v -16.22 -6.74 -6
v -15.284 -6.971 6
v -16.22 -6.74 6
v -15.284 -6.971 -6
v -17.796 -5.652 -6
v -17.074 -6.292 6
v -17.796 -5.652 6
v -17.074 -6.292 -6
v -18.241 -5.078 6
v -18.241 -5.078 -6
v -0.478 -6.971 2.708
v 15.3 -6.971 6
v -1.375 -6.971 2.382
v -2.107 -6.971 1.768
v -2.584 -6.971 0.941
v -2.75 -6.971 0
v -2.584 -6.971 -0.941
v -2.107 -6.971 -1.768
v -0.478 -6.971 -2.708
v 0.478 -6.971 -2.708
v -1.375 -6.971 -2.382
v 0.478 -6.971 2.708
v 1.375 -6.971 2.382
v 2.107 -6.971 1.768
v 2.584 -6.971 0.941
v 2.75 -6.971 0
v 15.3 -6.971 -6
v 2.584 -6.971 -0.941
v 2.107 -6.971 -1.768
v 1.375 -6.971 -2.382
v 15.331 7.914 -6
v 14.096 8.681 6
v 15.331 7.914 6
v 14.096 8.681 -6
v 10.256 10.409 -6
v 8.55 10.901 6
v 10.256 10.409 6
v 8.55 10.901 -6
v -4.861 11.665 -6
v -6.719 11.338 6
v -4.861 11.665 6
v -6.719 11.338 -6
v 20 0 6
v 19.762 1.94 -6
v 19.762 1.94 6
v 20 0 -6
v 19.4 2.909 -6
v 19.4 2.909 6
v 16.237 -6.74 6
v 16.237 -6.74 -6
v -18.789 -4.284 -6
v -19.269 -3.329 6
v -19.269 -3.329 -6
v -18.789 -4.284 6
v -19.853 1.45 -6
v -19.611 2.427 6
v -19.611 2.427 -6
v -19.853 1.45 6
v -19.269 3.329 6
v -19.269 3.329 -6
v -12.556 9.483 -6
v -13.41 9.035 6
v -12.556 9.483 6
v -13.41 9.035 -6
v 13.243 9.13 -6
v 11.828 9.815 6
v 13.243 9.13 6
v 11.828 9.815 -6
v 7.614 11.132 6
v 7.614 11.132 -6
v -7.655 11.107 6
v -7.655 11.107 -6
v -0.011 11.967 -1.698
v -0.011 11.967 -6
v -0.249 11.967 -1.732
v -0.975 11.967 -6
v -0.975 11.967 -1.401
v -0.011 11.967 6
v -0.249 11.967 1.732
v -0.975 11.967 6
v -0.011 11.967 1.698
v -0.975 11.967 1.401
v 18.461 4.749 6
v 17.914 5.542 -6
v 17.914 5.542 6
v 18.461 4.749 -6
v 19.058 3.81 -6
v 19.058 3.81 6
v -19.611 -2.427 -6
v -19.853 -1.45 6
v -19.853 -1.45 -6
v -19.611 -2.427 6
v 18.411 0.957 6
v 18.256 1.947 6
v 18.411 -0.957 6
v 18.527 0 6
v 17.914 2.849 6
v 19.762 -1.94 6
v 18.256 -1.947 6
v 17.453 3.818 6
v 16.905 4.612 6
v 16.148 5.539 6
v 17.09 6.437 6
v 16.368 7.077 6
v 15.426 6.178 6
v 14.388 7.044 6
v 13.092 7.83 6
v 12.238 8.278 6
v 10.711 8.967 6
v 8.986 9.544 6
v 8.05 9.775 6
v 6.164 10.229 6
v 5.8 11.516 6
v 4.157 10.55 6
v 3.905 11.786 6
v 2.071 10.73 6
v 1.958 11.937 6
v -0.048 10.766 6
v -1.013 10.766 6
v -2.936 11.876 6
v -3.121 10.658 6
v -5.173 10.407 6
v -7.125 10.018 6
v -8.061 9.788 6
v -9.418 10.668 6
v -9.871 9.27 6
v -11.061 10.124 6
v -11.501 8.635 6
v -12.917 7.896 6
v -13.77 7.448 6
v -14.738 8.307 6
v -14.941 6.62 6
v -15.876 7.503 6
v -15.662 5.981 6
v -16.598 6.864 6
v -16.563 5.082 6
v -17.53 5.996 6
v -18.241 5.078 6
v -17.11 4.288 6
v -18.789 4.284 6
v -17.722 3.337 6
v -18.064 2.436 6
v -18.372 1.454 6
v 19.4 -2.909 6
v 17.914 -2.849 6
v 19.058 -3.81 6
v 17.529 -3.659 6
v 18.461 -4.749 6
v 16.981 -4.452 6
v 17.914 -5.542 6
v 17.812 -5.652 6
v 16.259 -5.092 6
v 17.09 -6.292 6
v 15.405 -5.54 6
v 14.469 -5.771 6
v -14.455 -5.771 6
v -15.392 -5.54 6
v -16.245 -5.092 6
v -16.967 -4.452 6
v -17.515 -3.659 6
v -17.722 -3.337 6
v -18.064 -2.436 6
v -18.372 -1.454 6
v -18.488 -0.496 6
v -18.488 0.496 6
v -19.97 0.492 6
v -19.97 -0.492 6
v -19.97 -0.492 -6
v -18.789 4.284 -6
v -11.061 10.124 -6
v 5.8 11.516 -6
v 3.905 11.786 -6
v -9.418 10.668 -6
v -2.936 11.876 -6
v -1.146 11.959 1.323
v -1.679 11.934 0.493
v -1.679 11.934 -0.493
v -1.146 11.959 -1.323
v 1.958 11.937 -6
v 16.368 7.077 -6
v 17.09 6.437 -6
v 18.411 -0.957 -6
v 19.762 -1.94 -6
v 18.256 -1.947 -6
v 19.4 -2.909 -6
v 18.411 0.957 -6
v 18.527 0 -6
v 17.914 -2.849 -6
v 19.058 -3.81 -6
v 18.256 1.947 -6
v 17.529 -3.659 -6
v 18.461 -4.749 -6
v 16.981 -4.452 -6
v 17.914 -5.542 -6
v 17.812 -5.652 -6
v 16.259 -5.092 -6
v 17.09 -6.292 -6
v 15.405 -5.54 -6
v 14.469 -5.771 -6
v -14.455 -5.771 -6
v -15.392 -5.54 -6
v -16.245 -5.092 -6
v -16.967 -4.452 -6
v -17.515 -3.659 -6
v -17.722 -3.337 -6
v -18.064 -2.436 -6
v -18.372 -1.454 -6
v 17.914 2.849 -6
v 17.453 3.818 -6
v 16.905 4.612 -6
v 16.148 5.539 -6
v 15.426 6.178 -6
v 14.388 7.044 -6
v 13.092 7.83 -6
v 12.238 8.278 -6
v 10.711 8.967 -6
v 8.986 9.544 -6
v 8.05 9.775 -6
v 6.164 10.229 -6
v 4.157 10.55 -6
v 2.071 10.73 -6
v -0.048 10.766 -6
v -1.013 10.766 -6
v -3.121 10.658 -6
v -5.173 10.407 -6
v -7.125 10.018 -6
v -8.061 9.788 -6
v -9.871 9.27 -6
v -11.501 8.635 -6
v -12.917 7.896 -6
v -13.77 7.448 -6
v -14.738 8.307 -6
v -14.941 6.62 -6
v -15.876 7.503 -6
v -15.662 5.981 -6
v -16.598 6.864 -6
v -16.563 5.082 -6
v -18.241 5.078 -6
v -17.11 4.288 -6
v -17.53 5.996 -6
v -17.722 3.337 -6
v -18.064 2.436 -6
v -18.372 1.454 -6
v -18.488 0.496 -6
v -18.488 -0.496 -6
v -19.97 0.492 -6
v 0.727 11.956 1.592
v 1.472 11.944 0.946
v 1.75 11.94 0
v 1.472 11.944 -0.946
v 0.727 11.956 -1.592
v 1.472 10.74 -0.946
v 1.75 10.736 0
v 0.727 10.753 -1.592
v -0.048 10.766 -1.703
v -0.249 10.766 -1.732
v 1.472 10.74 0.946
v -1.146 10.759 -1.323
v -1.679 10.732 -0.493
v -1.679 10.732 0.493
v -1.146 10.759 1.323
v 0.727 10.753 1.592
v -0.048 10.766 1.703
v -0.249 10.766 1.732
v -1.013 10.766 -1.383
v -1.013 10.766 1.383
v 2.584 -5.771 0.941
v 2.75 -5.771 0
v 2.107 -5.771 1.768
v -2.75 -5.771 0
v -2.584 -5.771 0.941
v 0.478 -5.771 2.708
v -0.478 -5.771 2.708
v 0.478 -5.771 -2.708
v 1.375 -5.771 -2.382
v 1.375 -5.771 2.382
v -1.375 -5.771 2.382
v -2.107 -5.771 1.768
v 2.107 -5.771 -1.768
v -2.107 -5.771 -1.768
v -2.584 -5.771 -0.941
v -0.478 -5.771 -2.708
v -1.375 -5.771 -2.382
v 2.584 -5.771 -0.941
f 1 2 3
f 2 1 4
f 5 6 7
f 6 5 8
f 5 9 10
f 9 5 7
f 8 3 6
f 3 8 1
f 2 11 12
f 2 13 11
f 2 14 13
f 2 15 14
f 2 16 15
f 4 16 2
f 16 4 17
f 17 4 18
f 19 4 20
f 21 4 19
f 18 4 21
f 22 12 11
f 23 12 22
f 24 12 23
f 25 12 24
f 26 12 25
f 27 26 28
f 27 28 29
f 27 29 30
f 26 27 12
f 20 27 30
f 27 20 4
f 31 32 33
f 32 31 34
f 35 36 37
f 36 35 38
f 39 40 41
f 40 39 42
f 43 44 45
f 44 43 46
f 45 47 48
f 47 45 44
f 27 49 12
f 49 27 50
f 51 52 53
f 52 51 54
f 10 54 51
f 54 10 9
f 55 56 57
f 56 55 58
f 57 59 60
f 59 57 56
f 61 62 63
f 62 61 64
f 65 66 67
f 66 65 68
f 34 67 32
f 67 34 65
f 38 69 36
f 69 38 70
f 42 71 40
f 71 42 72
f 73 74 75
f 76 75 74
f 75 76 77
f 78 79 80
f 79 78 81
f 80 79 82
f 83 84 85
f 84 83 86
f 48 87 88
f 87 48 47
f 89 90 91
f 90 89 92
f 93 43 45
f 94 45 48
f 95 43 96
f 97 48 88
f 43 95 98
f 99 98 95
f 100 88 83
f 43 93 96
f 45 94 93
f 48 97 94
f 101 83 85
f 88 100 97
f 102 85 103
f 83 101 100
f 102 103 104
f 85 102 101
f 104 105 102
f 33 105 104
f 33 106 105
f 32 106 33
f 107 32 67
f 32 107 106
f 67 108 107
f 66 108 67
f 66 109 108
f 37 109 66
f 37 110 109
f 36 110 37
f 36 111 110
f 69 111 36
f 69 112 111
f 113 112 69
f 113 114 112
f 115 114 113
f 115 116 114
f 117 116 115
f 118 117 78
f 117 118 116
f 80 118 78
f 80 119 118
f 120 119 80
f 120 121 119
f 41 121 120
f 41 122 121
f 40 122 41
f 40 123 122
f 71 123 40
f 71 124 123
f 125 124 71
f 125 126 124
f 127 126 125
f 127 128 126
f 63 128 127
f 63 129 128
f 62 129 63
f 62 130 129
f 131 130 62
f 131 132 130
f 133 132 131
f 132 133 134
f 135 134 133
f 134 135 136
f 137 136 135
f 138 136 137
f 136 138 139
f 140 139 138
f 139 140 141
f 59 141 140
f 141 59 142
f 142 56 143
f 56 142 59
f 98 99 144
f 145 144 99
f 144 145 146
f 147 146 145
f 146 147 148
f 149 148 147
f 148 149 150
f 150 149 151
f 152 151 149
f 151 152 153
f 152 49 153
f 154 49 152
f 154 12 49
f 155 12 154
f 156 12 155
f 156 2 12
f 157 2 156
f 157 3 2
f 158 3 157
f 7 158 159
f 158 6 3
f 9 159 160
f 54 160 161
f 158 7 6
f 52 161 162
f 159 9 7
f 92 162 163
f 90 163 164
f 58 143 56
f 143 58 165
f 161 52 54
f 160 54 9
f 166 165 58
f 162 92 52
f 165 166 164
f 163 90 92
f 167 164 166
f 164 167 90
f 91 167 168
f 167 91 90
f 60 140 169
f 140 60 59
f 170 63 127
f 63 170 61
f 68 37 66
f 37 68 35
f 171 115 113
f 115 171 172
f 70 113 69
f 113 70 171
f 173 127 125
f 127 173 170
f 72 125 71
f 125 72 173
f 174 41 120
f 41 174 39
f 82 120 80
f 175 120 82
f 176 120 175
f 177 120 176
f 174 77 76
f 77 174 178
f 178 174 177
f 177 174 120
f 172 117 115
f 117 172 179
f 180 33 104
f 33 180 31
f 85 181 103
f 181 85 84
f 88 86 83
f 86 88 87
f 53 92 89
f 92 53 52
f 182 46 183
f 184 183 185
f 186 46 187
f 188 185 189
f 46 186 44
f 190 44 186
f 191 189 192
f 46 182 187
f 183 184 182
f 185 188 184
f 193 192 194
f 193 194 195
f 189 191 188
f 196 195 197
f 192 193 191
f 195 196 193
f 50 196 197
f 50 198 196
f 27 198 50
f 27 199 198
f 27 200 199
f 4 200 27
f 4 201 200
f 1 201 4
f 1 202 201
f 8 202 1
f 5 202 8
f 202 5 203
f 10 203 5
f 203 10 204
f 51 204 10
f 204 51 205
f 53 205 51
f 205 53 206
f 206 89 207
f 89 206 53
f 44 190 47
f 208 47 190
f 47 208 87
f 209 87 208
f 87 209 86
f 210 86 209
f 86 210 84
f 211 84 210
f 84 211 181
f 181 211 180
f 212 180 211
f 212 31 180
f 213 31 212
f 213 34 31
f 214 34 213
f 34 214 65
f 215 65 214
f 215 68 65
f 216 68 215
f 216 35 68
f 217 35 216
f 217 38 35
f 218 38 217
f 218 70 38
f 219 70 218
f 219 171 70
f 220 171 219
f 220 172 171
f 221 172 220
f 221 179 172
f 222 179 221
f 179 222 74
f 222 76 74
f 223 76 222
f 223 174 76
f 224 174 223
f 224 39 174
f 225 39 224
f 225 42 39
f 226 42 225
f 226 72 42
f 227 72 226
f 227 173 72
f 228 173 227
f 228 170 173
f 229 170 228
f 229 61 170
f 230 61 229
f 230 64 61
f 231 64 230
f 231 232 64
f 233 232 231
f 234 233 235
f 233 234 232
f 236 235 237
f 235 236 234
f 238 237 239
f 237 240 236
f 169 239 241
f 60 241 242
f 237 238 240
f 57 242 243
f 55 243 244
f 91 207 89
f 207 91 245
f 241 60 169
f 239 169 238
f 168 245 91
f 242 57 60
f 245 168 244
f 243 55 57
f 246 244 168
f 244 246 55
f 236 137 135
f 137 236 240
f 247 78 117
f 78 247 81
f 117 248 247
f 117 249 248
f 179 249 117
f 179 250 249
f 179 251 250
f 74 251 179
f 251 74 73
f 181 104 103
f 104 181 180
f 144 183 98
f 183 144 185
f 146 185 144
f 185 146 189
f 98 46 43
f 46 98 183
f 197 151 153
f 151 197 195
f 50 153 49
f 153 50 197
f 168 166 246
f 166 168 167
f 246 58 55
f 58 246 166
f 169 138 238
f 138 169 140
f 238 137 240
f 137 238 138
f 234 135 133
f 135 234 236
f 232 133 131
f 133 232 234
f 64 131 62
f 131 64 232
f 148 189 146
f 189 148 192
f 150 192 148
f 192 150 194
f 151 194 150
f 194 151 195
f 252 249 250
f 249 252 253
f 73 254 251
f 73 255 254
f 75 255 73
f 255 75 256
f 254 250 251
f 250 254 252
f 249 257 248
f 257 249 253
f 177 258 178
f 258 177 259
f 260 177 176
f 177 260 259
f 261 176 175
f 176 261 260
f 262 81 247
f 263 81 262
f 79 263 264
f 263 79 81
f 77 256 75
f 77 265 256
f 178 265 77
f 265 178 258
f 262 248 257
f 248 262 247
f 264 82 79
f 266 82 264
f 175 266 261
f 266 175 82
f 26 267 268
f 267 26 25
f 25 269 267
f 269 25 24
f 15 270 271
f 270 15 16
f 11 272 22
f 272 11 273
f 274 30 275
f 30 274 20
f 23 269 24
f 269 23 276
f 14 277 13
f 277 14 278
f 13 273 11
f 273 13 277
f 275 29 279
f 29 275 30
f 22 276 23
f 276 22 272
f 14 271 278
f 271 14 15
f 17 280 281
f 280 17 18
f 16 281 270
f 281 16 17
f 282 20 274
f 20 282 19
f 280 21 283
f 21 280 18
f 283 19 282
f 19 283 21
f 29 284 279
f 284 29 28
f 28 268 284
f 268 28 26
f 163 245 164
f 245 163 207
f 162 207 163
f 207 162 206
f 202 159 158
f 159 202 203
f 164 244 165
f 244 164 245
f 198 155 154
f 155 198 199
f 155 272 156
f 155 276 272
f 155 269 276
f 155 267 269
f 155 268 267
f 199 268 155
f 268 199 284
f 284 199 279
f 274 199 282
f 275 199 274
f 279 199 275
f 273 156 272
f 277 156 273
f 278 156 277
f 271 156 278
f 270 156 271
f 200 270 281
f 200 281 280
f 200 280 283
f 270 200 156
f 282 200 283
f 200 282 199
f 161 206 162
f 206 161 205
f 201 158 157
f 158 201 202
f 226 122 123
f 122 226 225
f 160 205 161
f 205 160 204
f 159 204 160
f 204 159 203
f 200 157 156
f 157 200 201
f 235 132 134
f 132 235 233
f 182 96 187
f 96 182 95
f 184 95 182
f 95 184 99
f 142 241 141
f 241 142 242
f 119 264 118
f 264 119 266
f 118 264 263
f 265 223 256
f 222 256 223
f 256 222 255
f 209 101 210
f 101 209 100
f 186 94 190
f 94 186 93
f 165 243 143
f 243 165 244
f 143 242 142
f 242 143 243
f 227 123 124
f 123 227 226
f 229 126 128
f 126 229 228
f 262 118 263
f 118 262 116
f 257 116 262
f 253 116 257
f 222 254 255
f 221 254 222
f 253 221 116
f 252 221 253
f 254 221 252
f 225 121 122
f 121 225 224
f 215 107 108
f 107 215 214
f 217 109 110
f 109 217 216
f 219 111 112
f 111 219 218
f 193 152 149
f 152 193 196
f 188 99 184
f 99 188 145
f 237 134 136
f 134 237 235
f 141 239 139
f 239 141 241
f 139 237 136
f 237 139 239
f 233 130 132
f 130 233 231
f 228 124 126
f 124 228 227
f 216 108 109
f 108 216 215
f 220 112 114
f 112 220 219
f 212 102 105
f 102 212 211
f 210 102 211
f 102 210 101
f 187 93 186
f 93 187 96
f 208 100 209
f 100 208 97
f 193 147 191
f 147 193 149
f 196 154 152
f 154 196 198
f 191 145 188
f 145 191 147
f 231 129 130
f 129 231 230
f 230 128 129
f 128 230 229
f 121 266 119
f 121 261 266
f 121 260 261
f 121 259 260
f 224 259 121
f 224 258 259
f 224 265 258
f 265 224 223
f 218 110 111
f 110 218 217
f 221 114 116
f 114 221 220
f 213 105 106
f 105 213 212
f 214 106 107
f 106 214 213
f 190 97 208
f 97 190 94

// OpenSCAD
wall=1.2;
thick=12;

$fs=1;
$fa=1;
ep=0.01;
width=40;
height=15;
flat=5;
round=4;
m3_slot=3.5;
bolt_slot=5.5;
module basic(xx,yy,rr,ff) //x extent, y extent, roundness, foot cutoff
{
    mx=xx-rr;
    my=yy-rr;
    minkowski()
    {
        difference()
        {
            ratio=xx/yy;
            scale([ratio,1])circle(r=my/2);
            translate([0,-(my-ff)])square([mx*2,my],center=true);
        }
        circle(r=rr);
    }
}
module afoot()
{
    translate([0,0,-thick/2])linear_extrude(height=thick)basic(width,height+flat,round,flat);
}
module afoot_inner()
{
    translate([0,0,-(thick+1)/2])linear_extrude(height=thick+1)basic(width-(wall*2),height+flat-(wall*2),round,flat);
}
module bfoot()
{
    rotate([0,90,0])translate([0,0,-thick/2])linear_extrude(height=thick)difference()
    {
        basic(width+wall,height+flat+wall,round,flat);
        basic(width-wall,height+flat-wall,round,flat);
    }
}
module bfoot_inner()
{
    rotate([0,90,0])translate([0,0,-thick/2])linear_extrude(height=thick)difference()
    {
        basic(width+wall-(wall*2),height+flat+wall-(wall*2),round,flat);
        basic(width-wall-(wall*2),height+flat-wall-(wall*2),round,flat);
    }
}
module shaped()
{
    difference()
    {
        afoot();
        //bfoot();
        
        rotate([-90,0,0])cylinder(r=m3_slot/2,h=height);
        rotate([90,0,0])cylinder(r=bolt_slot/2,h=height);
    }
}
module shaped_inner()
{
difference()
    {
        afoot_inner();
        //bfoot_inner();

    }
}
difference()
{
    shaped();
    shaped_inner();
}
